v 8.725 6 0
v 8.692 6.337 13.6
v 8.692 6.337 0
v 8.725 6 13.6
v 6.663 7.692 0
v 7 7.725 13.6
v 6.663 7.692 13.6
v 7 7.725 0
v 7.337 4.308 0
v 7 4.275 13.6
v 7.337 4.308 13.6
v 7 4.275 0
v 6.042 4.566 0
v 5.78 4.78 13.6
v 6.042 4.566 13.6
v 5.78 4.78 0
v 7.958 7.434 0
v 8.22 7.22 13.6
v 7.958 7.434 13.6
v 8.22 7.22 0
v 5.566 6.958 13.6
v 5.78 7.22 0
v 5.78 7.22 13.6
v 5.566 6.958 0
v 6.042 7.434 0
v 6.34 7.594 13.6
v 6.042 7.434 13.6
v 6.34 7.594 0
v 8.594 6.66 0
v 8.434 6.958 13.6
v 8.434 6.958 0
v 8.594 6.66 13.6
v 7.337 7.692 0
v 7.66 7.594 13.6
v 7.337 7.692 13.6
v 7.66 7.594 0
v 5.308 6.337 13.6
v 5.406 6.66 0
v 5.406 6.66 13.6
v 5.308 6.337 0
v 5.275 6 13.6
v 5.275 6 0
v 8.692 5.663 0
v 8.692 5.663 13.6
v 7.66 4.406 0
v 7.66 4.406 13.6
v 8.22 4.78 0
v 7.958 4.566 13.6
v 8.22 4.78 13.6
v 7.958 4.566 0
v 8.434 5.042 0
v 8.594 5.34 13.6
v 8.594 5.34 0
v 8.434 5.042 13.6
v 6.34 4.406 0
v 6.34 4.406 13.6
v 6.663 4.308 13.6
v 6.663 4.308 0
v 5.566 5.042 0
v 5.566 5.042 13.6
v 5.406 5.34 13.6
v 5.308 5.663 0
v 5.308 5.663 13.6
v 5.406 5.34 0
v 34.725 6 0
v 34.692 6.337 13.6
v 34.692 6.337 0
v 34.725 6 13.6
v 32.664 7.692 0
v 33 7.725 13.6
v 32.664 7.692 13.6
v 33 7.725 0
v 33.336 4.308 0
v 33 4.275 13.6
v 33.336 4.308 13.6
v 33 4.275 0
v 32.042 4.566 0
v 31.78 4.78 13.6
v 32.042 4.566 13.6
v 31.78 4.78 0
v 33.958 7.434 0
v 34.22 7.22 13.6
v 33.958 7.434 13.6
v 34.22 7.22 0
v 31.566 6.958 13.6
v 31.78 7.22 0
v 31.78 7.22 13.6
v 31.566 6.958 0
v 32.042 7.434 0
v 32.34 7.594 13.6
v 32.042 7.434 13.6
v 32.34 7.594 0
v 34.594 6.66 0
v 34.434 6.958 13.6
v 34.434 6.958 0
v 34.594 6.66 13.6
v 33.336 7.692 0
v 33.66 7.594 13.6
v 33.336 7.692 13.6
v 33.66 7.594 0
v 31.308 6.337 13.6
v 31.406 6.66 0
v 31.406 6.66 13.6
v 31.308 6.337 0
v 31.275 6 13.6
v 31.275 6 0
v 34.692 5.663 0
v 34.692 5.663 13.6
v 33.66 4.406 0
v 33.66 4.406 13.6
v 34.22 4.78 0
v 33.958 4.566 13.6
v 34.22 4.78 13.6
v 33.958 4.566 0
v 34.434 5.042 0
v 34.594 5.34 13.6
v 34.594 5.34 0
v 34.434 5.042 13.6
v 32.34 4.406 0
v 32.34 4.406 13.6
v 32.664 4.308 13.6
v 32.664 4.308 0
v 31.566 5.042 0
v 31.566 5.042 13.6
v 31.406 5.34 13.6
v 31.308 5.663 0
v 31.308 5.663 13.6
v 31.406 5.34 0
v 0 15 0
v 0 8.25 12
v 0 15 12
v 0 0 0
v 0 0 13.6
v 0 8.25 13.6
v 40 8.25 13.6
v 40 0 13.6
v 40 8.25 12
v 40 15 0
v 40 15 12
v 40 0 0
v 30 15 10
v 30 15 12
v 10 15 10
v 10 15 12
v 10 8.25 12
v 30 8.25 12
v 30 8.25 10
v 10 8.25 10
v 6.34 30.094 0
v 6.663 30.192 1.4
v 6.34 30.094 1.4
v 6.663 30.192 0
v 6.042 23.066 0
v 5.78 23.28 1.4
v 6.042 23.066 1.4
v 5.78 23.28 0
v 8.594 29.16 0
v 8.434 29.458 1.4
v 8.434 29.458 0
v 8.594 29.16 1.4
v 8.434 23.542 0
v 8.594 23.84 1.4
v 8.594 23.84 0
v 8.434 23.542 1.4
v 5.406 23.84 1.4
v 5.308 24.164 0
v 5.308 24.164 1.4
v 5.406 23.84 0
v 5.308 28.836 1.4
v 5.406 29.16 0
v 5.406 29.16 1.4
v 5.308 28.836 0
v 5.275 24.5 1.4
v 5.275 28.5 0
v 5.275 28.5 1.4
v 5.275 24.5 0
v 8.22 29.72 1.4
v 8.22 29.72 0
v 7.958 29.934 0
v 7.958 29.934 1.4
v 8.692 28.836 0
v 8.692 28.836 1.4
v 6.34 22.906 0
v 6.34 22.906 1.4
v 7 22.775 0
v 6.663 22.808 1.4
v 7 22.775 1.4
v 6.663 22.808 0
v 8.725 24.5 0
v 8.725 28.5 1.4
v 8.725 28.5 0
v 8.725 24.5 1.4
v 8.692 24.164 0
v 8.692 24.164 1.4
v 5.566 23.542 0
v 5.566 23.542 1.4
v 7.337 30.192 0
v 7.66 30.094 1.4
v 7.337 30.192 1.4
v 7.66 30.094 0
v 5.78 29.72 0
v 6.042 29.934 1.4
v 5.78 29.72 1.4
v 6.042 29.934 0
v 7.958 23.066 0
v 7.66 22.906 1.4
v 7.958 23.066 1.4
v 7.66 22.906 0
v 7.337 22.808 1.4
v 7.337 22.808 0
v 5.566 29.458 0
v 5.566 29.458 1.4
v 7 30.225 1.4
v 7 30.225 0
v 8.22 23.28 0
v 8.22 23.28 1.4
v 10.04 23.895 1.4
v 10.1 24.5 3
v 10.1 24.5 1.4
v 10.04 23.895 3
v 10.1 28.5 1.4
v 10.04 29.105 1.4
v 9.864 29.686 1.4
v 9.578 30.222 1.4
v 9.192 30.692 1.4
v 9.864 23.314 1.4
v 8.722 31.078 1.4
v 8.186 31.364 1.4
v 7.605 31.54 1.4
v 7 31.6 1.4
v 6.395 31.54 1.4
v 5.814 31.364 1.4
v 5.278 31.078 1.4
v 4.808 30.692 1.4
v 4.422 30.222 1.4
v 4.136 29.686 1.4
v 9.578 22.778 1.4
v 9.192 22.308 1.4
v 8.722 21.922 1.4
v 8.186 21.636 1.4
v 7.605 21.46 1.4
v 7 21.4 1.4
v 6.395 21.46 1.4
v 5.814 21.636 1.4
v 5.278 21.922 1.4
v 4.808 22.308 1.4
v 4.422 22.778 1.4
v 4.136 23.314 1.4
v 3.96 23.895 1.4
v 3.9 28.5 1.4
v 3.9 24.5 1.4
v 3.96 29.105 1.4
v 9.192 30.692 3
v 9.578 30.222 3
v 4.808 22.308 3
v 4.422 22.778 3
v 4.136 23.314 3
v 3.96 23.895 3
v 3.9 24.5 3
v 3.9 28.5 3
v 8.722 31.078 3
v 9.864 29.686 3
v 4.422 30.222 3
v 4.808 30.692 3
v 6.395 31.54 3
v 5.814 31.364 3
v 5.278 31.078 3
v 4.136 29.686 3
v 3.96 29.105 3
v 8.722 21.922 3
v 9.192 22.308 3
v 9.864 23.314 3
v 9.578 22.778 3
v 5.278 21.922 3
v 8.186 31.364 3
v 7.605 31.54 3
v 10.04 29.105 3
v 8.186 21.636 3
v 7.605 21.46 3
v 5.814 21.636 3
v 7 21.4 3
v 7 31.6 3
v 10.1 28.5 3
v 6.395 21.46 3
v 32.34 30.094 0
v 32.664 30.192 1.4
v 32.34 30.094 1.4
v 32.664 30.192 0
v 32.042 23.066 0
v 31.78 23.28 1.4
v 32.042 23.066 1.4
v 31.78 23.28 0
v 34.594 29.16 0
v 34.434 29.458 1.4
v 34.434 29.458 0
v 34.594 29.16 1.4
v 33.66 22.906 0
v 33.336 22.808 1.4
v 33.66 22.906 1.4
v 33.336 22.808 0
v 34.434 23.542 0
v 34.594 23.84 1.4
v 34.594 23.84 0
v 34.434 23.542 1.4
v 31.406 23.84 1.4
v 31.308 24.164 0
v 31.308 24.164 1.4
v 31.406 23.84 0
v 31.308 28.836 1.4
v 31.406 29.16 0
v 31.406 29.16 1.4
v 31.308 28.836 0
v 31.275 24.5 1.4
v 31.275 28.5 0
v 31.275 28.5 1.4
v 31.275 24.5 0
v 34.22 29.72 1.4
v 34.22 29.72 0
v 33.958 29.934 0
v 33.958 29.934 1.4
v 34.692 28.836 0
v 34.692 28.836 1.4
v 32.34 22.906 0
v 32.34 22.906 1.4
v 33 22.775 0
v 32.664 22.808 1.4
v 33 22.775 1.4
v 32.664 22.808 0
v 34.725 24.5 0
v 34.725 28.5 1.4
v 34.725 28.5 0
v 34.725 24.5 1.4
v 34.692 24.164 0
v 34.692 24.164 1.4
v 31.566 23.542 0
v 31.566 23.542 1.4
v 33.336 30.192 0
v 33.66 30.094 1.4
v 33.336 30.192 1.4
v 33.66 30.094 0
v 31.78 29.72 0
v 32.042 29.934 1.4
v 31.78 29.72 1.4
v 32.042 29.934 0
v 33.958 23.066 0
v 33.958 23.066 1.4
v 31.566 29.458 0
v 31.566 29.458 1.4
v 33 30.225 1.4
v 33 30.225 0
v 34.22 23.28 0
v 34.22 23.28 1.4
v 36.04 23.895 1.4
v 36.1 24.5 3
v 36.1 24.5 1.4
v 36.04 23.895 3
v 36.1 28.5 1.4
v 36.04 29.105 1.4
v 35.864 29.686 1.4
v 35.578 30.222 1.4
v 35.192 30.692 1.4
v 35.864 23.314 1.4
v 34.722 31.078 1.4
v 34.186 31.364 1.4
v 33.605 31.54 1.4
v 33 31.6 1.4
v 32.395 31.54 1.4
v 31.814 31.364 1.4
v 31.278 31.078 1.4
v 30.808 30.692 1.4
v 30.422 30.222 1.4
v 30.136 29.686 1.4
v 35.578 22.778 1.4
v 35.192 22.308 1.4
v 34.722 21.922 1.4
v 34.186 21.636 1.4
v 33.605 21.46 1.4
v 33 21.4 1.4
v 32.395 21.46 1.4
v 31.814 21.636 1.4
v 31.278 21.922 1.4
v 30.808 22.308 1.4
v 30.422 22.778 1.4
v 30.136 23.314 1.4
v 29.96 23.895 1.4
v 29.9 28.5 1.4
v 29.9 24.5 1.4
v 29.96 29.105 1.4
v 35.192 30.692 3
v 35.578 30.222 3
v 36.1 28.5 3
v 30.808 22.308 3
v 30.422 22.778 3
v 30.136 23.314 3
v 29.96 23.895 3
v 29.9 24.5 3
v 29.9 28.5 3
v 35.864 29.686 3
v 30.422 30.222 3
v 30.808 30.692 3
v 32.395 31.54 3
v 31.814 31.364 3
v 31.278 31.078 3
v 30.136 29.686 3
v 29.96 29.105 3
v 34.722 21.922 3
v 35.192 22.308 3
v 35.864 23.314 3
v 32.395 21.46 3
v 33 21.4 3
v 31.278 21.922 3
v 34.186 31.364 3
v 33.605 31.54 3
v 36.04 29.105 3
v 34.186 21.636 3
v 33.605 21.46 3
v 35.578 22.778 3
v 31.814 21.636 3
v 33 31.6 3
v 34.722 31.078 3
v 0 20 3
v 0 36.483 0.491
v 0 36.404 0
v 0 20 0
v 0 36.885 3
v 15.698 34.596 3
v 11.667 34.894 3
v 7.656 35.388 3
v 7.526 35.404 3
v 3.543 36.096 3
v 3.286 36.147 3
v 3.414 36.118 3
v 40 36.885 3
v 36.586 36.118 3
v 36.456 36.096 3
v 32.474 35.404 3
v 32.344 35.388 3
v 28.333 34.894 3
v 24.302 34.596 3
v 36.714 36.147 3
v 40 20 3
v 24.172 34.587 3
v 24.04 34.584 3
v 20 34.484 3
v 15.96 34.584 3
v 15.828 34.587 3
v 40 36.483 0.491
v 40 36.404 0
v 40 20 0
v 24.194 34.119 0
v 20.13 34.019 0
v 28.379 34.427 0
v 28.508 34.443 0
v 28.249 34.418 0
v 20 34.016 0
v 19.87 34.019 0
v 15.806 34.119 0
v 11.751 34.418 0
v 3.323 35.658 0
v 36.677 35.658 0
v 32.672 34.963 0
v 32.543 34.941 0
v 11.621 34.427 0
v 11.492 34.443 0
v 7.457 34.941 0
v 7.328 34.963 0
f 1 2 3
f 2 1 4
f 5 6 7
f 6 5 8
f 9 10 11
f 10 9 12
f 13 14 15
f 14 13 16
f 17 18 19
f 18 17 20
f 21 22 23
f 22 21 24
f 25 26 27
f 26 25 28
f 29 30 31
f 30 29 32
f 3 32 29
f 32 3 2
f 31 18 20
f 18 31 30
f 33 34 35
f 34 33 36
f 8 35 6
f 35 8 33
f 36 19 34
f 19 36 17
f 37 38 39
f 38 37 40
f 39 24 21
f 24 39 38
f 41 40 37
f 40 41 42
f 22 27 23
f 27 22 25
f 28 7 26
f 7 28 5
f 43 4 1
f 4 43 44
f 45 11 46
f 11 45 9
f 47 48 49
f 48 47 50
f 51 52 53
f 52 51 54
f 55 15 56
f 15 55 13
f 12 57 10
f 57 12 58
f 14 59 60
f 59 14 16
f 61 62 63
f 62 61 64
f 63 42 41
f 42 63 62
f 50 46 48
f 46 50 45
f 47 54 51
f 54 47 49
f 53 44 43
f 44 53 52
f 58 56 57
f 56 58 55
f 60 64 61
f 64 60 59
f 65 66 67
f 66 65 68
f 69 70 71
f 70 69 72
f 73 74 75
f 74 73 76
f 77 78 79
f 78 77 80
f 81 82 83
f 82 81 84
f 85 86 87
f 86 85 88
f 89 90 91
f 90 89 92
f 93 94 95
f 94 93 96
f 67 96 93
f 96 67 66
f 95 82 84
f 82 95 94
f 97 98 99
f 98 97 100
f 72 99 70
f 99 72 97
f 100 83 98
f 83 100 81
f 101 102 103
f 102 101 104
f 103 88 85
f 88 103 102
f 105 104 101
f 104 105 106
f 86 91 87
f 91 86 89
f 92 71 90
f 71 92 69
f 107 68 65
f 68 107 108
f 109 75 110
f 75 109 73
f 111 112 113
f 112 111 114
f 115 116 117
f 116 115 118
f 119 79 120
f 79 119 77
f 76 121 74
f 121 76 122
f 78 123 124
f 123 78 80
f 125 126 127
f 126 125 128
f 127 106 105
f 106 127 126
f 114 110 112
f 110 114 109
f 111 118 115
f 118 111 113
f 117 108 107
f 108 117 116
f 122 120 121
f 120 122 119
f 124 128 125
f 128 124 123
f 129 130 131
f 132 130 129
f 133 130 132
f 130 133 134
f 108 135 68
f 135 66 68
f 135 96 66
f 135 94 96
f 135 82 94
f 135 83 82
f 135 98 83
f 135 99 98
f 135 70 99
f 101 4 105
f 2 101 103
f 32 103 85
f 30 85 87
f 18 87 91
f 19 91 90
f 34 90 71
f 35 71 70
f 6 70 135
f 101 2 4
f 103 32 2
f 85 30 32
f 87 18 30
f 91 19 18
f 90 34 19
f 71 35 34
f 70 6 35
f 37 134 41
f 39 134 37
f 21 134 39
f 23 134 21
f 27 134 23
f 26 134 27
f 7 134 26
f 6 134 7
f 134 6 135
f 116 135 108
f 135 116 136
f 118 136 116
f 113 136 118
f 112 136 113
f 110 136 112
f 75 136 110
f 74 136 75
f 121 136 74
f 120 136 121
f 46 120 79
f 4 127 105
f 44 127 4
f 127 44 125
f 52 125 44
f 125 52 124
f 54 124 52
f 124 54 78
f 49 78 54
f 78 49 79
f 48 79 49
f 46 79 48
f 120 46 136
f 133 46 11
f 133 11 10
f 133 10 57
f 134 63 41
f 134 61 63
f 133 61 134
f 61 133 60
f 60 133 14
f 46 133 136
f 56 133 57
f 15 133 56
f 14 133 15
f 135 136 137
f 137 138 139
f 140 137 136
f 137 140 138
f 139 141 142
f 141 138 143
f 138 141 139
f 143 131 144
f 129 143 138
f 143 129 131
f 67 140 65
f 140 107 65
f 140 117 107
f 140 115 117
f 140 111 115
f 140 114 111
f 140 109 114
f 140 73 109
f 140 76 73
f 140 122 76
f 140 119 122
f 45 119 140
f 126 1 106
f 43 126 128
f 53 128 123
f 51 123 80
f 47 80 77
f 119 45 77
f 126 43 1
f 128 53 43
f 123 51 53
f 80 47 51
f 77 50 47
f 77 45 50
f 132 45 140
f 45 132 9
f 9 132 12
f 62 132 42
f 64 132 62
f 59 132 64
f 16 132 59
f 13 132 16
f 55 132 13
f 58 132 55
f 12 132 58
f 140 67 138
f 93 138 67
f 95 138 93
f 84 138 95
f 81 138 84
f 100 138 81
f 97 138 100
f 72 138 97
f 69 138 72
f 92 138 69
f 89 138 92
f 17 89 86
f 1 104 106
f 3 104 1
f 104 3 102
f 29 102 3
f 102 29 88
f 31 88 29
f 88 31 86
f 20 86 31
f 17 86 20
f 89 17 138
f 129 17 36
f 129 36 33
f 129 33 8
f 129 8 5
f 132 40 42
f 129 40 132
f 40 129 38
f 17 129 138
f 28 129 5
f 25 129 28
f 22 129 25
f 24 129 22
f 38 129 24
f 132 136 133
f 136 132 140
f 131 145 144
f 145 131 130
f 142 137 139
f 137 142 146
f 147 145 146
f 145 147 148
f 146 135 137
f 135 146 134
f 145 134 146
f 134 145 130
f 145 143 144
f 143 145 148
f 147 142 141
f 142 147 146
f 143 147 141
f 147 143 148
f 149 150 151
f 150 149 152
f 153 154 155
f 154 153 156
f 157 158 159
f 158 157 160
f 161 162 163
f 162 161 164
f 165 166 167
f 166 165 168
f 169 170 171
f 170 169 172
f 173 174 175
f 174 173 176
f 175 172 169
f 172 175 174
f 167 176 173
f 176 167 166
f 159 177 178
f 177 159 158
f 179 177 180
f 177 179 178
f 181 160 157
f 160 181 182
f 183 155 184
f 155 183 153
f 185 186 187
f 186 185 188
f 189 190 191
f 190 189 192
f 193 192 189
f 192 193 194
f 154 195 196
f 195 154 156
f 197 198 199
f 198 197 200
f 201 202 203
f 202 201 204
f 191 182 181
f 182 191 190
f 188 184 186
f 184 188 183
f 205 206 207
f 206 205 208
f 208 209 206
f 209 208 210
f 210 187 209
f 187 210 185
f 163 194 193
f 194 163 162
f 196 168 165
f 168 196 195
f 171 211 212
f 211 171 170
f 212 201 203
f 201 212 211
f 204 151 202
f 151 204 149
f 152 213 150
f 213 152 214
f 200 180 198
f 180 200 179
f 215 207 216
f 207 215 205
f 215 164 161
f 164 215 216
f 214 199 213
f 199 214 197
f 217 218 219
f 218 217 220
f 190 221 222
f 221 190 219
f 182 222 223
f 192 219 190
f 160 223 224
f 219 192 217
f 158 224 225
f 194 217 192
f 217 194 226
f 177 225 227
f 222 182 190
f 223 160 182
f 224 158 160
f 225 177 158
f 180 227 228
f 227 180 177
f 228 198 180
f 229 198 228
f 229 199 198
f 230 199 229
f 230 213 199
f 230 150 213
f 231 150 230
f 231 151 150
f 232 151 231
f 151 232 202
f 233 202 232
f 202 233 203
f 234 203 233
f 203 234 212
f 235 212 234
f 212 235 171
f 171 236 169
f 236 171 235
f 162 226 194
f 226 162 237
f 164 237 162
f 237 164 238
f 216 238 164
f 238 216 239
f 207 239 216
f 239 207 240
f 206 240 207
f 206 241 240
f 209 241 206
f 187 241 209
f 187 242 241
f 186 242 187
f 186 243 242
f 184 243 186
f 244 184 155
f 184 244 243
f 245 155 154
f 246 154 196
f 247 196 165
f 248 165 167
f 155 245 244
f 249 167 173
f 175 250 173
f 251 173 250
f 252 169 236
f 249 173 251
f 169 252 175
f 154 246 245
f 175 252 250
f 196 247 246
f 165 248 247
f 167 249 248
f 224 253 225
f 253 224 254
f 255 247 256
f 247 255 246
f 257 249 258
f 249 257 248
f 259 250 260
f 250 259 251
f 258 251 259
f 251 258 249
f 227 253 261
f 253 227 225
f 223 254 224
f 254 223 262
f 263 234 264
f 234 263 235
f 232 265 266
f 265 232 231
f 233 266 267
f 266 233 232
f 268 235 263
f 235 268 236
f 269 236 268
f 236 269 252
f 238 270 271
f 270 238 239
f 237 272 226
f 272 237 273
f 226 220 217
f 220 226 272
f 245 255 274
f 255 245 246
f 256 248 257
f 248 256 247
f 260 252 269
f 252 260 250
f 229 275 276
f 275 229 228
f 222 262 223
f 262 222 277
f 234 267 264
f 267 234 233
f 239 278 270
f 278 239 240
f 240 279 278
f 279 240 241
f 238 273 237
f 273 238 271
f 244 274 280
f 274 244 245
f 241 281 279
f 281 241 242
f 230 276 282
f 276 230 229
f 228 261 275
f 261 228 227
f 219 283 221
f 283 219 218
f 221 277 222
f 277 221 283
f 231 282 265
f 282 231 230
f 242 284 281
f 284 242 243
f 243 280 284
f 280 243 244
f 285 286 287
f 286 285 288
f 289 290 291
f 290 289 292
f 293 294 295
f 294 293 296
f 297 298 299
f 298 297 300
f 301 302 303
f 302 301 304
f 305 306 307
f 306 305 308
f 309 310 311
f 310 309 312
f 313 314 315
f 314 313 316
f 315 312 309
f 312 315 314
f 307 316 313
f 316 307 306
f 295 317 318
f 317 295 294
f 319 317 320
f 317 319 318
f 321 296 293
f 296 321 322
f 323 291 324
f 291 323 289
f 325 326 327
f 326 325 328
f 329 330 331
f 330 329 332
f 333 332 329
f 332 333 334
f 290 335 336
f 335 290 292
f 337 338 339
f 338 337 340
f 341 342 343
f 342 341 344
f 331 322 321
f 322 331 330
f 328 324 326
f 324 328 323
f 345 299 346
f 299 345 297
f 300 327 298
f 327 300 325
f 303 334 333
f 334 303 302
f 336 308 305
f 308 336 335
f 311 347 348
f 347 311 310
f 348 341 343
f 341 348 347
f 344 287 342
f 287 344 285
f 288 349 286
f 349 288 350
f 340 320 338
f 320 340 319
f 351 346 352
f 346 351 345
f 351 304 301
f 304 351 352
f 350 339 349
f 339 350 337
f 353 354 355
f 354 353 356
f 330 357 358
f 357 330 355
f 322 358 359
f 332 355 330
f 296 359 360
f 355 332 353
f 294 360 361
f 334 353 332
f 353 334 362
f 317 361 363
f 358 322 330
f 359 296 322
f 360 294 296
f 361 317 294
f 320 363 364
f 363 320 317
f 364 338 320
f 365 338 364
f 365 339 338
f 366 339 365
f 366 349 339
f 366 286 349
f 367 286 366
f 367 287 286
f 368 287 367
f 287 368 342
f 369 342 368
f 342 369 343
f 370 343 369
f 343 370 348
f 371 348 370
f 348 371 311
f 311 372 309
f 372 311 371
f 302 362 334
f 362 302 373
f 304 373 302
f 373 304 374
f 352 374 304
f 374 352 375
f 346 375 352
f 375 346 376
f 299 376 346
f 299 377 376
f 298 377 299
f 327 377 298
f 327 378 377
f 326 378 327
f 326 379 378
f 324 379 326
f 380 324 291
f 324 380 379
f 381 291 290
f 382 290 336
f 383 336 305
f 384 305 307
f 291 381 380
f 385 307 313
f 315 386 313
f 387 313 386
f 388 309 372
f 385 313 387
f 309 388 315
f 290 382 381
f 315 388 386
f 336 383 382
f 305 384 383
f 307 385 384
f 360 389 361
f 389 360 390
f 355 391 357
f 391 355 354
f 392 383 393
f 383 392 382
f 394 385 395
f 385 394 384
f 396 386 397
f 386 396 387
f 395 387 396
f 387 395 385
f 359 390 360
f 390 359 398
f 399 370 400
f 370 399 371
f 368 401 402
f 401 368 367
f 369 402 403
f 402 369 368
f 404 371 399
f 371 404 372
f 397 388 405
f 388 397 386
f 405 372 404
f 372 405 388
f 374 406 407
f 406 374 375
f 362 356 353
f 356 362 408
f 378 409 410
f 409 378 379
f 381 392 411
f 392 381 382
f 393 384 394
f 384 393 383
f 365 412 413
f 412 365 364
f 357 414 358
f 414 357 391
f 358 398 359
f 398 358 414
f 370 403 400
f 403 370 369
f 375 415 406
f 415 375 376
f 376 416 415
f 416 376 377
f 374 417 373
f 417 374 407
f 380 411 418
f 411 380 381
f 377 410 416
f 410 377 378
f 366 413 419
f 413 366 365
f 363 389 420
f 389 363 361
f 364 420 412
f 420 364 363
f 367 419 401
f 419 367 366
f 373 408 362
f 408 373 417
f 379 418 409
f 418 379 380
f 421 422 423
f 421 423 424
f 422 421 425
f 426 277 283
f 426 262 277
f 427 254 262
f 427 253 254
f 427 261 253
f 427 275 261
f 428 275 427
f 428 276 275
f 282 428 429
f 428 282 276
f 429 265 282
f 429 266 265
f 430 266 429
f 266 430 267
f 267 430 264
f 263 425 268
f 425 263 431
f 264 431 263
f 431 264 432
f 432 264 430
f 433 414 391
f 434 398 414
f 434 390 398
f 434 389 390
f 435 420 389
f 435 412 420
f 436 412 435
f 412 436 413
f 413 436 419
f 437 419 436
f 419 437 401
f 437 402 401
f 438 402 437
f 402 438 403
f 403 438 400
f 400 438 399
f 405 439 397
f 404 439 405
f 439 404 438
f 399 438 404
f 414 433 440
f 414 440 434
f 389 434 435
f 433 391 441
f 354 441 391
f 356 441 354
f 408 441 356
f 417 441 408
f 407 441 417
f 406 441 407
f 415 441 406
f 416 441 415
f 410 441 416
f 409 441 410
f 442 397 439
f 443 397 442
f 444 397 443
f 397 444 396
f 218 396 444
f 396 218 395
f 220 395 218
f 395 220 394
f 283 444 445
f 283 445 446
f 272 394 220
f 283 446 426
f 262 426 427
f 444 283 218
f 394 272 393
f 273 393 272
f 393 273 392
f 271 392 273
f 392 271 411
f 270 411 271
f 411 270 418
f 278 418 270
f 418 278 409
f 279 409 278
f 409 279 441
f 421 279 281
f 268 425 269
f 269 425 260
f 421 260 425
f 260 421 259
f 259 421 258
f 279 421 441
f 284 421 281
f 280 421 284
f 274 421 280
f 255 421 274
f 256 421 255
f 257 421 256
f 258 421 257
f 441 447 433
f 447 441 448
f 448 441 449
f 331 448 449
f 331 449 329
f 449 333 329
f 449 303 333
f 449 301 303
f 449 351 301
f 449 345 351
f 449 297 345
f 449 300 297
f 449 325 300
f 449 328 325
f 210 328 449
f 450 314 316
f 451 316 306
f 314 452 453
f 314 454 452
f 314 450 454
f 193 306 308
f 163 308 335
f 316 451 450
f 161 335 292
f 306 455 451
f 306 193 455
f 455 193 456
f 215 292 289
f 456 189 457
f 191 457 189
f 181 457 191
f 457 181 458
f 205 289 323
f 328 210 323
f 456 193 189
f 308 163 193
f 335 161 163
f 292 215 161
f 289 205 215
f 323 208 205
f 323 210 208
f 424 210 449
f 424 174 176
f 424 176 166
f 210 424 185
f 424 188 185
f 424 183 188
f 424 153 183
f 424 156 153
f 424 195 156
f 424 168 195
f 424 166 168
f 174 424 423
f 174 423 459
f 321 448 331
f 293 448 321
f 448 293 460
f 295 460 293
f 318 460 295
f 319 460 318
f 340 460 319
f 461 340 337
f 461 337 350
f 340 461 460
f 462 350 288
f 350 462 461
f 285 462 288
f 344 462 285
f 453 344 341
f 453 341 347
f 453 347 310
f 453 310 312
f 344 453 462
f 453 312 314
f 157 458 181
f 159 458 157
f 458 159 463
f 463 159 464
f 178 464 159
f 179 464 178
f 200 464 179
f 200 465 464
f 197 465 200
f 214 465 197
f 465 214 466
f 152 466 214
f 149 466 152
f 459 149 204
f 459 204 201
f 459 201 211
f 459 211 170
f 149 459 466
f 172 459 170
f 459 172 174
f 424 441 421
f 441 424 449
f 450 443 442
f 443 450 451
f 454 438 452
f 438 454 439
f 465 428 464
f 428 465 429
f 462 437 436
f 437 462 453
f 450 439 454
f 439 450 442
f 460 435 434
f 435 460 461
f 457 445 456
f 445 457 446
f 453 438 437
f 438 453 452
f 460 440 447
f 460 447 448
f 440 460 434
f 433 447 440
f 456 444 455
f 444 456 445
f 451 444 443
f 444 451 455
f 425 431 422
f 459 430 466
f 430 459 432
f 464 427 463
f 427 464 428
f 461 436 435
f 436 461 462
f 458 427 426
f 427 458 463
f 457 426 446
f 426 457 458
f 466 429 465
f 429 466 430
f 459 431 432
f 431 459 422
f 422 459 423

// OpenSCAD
// Holder for raised, hexagonal heat bed on Kossel Mini
// Licence: CC BY-SA 3.0, http://creativecommons.org/licenses/by-sa/3.0/
// Author: Dominik Scholz <schlotzz@schlotzz.com> and contributors
// visit: http://www.schlotzz.com

// avoid OpenScad artefacts
epsilon = 0.1;

// increase this if your slicer or printer make holes too tight
extra_radius = 0.1;

// major diameter of metric 3mm thread
m3_major = 2.85;
m3_radius = m3_major / 2 + extra_radius;
m3_wide_radius = m3_major / 2 + extra_radius + 0.2;

// diameter of metric 3mm hexnut screw head
m3_head_radius = 3 + extra_radius;


// size settings
raise = 12;
pcb_thickness = 1.6;
pcb_offset = 8.25;
screw_offset = 15 / 2 - 1.5;
screw_padding = 7;
insert_width = 20;
insert_height = 2;


// base of heat bed holder
module heat_bed_holder_base(width = 40, depth = 15, height = raise + pcb_thickness)
{
    
    difference()
    {
        // base
        cube([width, depth, height]);
        
        // pcb cutout
        translate([-epsilon, pcb_offset, raise])
            cube([width + 2 * epsilon, depth, pcb_thickness + epsilon]);
        
        // insert
        translate([(width - insert_width) / 2, pcb_offset, raise - insert_height])
            cube([insert_width, depth, insert_height + epsilon]);
        
        // screw holes
        for (x  = [screw_padding, width - screw_padding])
            translate([x, screw_offset, -epsilon])
                cylinder(r = m3_wide_radius, h = height + 2 * epsilon, $fn = 32);
    }
    
}


// top of heat bed holder
module heat_bed_holder_top(width = 40, depth = 14.5, height = 3)
{
    difference()
    {
        // base
        cube([width, depth + 10, height]);
        
        // glas bed cutout
        translate([width / 2, 170 / 2 + depth, -epsilon])
            cylinder(r1 = 170 / 2 + 0.5, r2 = 170 / 2, h = height + 2 * epsilon, $fn = 128);
        
        // screw holes
        for (x  = [screw_padding, width - screw_padding])
        {
            translate([x, screw_offset, -epsilon])
            {
                hull()
                {
                    translate([0, -1.5, 0])
                        cylinder(r = m3_wide_radius, h = height + 2 * epsilon, $fn = 32);
                    translate([0, 2.5, 0])
                        cylinder(r = m3_wide_radius, h = height + 2 * epsilon, $fn = 32);
                }
                hull()
                {
                    translate([0, -1.5, height / 2])
                        cylinder(r = m3_head_radius, h = height + 2 * epsilon, $fn = 32);
                    translate([0, 2.5, height / 2])
                        cylinder(r = m3_head_radius, h = height + 2 * epsilon, $fn = 32);
                }
            }
        }
    }
    
}

heat_bed_holder_base();
translate([0, 20, 0])
    heat_bed_holder_top();
